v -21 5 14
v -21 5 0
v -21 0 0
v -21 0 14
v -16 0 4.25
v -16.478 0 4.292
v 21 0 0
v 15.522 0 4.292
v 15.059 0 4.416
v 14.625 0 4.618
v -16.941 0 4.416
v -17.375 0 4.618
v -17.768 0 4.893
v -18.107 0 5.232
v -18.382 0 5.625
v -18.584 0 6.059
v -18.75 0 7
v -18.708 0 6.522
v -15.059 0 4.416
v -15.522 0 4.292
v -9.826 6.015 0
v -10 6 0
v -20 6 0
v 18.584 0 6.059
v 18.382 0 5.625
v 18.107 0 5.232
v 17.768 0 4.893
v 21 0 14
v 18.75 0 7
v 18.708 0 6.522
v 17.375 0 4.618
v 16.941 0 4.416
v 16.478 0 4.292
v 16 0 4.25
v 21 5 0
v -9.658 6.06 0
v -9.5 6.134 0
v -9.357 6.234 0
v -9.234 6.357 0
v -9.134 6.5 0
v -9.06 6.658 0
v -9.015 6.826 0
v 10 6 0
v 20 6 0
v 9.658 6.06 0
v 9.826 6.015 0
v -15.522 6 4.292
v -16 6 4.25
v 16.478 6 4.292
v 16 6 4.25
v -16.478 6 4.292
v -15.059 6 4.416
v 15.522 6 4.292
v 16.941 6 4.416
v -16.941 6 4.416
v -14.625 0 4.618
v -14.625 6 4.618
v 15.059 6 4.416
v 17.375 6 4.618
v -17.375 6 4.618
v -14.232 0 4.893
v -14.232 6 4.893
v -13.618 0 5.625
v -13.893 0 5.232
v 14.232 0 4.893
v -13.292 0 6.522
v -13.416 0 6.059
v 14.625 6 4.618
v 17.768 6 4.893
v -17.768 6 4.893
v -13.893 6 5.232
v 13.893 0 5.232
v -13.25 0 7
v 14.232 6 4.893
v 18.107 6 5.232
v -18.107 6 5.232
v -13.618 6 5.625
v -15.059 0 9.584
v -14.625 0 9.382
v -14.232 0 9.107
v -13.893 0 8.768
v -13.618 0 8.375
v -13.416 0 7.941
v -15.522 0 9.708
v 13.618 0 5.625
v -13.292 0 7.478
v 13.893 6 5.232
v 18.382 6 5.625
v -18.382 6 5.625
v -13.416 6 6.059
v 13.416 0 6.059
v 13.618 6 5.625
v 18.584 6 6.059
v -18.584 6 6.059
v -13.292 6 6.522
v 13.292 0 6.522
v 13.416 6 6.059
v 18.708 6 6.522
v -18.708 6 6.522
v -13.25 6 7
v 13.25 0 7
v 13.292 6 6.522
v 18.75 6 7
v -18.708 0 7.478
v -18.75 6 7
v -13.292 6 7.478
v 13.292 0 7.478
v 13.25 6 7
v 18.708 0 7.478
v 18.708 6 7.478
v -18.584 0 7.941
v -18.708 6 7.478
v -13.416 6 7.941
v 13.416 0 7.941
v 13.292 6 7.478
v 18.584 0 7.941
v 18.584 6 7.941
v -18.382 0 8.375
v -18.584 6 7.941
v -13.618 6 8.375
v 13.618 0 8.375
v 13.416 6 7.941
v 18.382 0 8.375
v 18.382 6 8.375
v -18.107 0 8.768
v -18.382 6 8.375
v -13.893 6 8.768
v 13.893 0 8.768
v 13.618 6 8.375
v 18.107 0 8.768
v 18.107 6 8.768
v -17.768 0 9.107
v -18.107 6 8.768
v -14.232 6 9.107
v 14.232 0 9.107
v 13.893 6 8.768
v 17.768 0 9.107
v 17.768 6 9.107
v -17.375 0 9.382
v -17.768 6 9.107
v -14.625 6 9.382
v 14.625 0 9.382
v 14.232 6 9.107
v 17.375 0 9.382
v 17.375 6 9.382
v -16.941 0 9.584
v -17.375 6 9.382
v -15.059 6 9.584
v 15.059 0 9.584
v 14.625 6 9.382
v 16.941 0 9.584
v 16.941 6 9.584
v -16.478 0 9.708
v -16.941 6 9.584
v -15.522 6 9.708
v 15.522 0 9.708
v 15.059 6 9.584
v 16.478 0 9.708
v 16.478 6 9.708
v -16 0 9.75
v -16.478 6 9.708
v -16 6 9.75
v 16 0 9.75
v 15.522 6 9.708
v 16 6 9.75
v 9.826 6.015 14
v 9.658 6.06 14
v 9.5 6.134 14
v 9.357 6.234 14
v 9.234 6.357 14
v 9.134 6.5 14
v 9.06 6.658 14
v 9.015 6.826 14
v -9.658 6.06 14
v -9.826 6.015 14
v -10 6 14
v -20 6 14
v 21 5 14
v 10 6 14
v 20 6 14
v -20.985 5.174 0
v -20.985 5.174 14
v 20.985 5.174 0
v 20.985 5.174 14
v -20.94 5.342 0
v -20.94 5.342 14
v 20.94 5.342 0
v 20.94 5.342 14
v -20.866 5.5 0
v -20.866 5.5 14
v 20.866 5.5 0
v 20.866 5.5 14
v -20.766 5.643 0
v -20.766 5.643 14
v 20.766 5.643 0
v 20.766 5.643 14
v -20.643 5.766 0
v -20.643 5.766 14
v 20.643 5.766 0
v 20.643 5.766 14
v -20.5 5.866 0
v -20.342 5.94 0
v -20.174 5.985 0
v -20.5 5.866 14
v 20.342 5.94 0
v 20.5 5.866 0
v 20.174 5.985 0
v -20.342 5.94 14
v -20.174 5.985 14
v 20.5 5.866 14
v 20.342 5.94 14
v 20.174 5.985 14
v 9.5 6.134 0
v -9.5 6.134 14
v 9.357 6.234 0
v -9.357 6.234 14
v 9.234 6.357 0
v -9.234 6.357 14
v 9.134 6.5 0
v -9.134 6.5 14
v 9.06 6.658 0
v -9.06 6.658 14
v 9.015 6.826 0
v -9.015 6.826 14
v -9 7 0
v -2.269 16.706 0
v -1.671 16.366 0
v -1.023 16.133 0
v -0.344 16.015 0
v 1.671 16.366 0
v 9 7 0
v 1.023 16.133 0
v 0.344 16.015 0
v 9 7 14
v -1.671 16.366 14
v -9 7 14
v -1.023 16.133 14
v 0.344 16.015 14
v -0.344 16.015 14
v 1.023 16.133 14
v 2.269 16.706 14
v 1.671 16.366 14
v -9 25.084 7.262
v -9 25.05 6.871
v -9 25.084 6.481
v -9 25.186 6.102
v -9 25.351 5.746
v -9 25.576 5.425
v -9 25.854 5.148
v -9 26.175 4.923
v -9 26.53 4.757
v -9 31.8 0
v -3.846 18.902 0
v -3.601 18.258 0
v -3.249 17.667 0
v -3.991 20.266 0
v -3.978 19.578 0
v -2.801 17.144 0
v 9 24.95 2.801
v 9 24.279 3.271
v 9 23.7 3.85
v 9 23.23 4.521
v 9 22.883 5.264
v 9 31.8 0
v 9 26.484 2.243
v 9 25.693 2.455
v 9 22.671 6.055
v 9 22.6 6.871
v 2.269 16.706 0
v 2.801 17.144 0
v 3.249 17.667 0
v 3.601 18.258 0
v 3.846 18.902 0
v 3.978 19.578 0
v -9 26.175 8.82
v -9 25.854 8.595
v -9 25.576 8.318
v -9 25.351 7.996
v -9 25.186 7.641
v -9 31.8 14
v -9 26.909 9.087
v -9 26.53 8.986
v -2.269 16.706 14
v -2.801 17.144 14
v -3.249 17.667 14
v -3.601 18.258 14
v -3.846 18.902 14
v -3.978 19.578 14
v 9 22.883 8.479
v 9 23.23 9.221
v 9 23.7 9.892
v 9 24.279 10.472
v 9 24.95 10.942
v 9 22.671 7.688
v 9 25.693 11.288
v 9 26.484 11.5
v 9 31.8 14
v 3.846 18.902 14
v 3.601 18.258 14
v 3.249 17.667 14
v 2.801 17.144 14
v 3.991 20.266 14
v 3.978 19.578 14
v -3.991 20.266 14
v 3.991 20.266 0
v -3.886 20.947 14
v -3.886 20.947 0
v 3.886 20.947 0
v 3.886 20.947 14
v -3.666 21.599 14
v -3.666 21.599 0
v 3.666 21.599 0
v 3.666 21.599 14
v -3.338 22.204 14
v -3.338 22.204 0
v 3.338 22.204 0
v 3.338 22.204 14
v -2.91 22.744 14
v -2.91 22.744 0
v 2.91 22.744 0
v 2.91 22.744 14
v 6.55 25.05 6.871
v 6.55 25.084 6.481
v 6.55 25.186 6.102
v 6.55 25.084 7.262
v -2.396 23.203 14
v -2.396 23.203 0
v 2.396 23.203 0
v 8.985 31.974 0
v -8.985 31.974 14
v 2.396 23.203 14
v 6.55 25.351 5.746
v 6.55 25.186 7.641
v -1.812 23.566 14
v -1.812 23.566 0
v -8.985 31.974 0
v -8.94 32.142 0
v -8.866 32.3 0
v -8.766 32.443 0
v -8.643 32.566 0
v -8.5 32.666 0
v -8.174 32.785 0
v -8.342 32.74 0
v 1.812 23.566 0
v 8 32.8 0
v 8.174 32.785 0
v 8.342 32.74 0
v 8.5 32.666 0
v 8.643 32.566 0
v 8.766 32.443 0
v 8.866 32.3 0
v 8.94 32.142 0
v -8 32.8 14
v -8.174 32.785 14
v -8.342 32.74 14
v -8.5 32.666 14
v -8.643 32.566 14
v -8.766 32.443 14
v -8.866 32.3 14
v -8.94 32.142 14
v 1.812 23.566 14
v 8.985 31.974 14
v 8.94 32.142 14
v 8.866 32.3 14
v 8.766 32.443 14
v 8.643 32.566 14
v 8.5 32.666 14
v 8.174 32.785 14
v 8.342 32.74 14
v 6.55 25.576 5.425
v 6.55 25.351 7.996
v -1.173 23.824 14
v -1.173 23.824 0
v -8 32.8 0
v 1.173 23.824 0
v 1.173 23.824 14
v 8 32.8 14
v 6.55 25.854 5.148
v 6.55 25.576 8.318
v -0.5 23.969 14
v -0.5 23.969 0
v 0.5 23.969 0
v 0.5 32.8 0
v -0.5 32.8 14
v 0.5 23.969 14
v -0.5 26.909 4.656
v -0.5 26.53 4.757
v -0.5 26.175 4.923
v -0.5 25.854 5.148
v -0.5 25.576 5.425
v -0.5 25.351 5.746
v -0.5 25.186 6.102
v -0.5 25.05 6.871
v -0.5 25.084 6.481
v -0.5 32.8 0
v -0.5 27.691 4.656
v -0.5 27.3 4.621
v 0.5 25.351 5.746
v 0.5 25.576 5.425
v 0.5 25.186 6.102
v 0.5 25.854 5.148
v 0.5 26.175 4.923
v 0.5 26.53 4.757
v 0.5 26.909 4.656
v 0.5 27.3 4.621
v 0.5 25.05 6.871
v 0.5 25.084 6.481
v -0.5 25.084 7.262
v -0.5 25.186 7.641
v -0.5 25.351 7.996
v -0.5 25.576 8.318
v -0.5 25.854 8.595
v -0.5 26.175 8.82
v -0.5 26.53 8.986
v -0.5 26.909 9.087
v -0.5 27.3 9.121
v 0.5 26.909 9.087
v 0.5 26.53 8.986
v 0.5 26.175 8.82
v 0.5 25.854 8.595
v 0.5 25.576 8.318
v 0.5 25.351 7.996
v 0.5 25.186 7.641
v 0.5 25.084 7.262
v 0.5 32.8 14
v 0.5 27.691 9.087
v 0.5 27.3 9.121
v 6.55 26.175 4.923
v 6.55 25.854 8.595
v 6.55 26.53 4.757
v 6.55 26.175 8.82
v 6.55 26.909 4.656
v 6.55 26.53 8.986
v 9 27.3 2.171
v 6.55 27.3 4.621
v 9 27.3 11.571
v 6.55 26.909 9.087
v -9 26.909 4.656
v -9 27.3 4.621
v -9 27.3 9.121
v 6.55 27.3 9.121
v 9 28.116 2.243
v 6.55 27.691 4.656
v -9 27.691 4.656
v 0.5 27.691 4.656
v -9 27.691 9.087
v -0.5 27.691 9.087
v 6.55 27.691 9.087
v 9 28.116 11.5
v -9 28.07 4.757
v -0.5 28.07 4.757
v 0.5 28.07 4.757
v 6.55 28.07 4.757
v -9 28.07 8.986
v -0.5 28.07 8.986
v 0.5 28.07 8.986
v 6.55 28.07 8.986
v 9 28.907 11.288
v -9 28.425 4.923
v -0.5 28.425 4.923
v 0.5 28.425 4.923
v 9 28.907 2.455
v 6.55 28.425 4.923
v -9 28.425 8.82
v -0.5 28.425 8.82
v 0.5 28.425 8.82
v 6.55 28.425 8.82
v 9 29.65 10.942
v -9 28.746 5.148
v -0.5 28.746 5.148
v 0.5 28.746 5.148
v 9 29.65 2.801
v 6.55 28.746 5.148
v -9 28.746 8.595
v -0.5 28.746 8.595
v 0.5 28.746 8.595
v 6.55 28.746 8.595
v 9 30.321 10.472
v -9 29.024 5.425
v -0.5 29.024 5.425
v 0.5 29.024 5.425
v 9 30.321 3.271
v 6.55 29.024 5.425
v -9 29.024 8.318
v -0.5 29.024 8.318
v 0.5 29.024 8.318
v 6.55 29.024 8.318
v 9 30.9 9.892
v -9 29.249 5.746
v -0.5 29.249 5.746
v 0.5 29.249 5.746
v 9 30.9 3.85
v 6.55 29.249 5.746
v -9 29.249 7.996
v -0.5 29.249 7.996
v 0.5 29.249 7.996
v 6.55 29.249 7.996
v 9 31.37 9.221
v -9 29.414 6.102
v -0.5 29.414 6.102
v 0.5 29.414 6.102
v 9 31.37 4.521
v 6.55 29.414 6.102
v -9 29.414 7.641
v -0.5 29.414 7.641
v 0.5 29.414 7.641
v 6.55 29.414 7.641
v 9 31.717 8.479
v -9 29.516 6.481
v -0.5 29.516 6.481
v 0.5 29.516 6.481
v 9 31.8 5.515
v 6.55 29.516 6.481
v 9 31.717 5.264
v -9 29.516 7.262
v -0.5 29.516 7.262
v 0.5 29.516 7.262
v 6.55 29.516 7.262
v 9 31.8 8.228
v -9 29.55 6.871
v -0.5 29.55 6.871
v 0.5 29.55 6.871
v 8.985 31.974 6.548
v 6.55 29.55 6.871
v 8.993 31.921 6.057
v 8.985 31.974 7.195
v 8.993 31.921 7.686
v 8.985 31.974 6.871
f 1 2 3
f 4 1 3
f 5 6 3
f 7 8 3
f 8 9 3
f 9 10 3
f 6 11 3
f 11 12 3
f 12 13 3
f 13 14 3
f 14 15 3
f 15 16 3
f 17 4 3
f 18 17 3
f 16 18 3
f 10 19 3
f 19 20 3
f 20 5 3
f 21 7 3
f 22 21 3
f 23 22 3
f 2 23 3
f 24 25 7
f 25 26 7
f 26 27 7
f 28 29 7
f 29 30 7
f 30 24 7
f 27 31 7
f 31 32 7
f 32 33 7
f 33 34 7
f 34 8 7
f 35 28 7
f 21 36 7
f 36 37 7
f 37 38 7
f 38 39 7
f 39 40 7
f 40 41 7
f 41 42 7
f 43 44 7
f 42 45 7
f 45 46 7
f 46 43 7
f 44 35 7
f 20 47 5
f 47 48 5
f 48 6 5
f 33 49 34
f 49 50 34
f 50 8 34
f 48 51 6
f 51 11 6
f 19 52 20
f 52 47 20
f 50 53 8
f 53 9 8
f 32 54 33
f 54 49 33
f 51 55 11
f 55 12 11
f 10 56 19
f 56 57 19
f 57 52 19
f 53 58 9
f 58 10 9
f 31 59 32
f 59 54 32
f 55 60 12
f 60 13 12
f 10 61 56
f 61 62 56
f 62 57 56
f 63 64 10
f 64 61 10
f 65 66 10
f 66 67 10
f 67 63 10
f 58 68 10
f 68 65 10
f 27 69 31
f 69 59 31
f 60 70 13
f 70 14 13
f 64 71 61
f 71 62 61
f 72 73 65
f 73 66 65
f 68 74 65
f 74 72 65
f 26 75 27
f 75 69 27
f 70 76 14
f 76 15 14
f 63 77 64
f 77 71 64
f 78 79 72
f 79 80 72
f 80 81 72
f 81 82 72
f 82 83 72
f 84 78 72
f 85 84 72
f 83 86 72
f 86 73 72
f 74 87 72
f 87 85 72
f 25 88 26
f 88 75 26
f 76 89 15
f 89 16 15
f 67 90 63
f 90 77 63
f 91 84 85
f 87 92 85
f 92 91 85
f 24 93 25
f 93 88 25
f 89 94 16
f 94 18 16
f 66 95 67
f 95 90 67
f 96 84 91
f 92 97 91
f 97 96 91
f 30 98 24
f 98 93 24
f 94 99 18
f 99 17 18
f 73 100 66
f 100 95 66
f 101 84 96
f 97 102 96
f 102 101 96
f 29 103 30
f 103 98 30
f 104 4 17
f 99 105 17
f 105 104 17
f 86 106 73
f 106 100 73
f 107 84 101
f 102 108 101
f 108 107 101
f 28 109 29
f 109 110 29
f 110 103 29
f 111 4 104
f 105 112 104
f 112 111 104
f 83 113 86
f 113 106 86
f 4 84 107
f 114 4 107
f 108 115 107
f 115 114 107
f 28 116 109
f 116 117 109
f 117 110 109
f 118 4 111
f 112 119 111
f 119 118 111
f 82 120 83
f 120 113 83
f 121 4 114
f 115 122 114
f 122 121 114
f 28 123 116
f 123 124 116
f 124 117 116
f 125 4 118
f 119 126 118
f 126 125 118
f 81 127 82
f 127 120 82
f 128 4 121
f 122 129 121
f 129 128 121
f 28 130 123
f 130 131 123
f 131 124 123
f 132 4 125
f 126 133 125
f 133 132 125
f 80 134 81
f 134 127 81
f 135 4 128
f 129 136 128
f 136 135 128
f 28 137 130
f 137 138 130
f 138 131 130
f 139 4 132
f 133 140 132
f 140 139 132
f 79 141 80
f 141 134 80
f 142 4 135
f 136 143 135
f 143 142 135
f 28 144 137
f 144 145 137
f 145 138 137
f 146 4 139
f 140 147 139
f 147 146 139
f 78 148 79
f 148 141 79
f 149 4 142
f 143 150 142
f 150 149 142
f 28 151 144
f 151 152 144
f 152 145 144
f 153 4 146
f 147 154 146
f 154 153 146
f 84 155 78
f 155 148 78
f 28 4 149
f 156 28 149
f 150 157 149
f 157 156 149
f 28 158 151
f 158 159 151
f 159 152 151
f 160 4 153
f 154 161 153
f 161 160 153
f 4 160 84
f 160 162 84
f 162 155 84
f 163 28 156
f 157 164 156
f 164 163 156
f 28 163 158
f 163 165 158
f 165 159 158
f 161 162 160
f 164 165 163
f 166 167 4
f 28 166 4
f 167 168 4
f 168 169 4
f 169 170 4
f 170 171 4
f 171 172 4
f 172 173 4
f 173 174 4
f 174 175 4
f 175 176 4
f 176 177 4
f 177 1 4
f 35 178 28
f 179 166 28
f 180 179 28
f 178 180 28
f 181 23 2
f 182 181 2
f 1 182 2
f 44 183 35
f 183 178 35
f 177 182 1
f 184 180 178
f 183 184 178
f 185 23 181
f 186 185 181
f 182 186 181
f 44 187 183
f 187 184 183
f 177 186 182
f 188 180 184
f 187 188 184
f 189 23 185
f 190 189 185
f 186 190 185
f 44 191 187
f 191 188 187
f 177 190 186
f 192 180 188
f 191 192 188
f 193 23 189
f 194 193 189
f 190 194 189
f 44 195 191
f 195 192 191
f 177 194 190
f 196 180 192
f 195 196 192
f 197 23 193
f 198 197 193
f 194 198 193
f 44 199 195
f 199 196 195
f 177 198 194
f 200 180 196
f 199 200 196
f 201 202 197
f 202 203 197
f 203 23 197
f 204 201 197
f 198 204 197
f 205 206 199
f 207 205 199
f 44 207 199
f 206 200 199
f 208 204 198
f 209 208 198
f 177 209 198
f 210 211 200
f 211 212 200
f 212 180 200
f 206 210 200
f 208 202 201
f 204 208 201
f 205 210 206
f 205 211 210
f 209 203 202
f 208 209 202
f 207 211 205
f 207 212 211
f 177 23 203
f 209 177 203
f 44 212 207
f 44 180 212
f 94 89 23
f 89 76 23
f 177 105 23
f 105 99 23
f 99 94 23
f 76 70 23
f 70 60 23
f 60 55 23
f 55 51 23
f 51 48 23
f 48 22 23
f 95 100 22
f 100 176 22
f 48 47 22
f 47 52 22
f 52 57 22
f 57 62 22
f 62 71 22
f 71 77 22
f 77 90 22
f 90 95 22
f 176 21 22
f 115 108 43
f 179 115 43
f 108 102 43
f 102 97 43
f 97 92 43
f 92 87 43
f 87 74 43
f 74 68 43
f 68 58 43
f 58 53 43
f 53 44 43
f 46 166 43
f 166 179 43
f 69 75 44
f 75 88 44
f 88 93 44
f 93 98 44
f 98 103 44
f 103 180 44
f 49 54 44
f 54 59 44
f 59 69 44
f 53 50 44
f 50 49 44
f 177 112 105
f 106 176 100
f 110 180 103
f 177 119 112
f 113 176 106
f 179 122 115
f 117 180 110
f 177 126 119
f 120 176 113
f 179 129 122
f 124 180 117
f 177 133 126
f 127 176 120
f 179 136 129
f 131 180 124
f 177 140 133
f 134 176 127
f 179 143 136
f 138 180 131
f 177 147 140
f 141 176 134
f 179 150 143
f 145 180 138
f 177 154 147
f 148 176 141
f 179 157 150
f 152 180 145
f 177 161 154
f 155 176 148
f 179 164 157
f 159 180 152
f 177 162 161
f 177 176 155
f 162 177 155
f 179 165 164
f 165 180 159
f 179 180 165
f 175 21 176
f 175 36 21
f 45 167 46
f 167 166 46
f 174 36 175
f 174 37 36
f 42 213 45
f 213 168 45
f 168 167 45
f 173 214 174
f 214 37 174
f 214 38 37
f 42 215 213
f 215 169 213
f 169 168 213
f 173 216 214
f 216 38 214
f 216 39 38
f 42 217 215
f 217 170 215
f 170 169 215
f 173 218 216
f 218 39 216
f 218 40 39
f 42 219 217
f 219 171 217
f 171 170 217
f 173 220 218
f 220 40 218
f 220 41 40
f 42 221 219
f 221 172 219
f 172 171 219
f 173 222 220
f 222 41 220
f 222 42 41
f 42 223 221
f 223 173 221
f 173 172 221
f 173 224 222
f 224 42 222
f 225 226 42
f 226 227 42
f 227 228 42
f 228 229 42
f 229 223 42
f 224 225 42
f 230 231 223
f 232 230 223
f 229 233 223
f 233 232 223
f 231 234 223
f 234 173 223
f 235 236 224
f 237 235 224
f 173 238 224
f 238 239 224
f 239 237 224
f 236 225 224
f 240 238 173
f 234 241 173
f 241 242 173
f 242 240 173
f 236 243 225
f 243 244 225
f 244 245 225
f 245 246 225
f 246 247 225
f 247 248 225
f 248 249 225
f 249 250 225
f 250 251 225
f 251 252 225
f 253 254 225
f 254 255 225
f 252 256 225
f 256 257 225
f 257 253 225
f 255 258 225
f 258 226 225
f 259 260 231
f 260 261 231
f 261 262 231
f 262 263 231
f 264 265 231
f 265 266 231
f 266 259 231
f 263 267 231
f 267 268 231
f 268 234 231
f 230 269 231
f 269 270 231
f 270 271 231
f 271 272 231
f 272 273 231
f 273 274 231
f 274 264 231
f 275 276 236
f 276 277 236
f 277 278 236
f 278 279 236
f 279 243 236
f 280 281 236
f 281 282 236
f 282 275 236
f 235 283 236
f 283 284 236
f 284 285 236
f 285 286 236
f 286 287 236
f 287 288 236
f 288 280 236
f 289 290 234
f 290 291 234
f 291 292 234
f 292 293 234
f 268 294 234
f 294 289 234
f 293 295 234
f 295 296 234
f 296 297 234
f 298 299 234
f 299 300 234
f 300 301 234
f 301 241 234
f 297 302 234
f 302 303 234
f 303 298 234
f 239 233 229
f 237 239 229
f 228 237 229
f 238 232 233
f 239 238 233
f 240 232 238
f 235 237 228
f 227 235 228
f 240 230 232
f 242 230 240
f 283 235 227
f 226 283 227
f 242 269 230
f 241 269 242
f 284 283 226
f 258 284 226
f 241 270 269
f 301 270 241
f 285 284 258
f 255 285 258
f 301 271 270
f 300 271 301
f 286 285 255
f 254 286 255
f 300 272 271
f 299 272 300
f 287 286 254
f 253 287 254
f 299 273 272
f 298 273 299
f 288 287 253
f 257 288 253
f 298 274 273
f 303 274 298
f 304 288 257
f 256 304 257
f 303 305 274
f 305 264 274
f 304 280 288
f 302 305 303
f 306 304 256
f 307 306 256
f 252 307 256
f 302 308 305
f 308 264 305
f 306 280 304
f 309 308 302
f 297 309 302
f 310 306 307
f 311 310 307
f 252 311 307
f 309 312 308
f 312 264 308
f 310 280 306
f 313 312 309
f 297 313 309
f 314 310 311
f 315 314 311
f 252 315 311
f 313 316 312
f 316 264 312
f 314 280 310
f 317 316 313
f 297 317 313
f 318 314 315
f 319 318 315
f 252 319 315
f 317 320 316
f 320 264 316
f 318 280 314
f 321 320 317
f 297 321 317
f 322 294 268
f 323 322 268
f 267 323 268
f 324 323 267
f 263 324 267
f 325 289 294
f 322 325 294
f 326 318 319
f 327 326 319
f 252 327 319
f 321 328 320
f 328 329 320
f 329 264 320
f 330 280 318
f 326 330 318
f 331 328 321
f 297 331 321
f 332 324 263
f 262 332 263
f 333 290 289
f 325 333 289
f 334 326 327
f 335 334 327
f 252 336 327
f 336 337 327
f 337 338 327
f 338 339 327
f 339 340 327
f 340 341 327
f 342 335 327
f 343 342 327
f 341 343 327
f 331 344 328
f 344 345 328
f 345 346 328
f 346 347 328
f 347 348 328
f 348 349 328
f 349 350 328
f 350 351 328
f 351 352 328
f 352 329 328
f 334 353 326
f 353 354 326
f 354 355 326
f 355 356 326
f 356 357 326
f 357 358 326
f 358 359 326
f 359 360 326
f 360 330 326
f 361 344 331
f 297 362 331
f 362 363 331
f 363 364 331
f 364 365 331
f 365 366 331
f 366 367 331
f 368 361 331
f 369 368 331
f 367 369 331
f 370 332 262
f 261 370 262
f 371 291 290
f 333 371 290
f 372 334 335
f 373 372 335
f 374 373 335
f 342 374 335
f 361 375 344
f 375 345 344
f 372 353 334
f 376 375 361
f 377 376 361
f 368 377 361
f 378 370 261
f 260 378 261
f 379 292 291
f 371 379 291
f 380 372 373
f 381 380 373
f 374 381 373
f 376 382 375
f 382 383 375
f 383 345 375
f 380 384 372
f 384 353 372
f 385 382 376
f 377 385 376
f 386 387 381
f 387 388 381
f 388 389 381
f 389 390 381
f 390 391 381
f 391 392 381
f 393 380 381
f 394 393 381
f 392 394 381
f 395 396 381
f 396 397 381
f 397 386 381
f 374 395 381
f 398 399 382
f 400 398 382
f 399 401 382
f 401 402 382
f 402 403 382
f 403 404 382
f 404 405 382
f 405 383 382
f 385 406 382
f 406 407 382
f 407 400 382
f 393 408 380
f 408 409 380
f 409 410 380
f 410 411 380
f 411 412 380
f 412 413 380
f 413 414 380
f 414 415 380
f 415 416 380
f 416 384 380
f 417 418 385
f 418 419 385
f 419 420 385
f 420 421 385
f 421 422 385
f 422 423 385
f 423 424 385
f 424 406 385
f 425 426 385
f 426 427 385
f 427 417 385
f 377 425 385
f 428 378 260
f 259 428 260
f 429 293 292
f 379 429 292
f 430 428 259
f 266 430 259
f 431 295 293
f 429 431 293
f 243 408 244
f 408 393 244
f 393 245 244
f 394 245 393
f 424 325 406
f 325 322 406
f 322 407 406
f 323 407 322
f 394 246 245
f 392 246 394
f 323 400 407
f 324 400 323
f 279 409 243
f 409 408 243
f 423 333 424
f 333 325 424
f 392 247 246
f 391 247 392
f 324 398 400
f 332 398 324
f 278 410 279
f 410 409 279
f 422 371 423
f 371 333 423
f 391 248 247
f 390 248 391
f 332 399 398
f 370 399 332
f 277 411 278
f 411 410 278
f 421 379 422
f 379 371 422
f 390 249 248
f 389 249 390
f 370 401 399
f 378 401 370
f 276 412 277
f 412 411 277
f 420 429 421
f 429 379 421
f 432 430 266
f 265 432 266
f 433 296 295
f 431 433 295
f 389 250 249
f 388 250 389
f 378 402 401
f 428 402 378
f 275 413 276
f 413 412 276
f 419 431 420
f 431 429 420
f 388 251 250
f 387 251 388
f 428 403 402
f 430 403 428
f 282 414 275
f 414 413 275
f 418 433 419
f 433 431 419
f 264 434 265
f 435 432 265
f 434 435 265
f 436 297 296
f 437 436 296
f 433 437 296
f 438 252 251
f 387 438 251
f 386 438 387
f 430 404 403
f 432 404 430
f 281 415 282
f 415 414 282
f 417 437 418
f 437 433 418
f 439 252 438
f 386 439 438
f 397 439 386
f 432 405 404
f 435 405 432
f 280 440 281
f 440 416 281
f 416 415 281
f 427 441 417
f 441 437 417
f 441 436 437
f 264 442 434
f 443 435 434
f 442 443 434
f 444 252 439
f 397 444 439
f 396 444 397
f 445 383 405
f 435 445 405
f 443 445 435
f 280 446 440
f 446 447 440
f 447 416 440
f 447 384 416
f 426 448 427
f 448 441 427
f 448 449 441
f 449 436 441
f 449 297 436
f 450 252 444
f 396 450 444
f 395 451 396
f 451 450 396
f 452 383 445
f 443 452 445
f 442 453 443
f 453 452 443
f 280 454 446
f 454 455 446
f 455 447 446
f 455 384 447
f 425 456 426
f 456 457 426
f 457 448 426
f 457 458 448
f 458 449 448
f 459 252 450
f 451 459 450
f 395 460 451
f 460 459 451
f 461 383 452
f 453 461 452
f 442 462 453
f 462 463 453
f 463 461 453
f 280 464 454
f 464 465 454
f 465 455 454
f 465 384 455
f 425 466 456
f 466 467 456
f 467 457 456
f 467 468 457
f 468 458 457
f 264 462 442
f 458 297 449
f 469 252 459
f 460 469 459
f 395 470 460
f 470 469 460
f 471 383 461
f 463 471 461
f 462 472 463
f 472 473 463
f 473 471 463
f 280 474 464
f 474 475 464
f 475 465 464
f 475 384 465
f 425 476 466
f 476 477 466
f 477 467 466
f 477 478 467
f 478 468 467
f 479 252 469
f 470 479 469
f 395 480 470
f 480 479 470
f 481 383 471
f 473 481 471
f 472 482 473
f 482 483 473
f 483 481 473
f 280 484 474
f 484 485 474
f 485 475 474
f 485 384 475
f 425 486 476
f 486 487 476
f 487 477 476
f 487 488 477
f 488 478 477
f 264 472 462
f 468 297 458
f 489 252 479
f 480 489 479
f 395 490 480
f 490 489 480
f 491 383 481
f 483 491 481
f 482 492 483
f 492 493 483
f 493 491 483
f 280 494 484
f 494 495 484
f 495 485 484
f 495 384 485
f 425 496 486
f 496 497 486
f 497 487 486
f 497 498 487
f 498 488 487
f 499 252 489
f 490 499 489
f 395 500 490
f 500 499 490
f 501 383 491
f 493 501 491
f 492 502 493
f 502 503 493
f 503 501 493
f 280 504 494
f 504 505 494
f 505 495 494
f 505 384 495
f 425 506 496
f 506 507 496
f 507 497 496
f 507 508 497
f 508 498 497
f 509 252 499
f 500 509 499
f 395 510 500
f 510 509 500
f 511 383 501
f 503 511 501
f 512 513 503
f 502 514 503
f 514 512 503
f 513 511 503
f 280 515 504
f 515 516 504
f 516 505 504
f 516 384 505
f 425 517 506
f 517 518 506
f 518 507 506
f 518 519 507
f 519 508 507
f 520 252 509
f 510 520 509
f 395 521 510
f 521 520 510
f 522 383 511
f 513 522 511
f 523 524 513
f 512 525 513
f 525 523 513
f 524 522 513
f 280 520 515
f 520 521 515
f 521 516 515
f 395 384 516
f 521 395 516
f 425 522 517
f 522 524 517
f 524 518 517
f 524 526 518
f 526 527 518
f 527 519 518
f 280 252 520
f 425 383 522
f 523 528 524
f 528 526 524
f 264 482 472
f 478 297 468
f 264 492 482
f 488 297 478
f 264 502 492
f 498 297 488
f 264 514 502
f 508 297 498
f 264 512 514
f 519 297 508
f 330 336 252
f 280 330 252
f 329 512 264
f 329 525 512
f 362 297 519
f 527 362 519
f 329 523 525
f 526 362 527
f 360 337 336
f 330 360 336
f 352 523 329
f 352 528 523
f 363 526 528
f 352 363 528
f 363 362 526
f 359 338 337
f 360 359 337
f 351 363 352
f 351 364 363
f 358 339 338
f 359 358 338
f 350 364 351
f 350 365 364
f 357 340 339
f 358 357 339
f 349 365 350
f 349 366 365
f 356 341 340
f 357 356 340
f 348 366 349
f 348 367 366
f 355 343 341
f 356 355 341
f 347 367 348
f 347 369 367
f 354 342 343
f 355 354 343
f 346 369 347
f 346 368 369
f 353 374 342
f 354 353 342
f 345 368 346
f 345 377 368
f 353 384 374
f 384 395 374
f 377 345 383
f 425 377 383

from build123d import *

# Parameters (mm, degrees)
BOSS_EXTRUDE1_DEPTH                             = 14
F_5_5_5_5_DIAMETER_HOLE1_D                      = 5.5
CSK_FOR_M4_FLAT_HEAD_MACHINE_SCREW1_D           = 4.5
CSK_FOR_M4_FLAT_HEAD_MACHINE_SCREW1_CSINK_D     = 9.4
CSK_FOR_M4_FLAT_HEAD_MACHINE_SCREW1_CSINK_ANGLE = 90
FILLET1_R                                       = 1


with BuildPart() as part:
    # Sketch1 → Boss-Extrude1 (new body)
    with BuildSketch(Plane.XY):
        with BuildLine():
            Line((-21, 0), (21, 0))
            Line((21, 0), (21, 6))
            Line((21, 6), (9, 6))
            Line((9, 6), (9, 32.8))
            Line((9, 32.8), (0.5, 32.8))
            Line((0.5, 32.8), (0.5, 23.968626967))
            ThreePointArc((0.5, 23.968626967), (0, 16), (-0.5, 23.968626967))
            Line((-0.5, 23.968626967), (-0.5, 32.8))
            Line((-0.5, 32.8), (-9, 32.8))
            Line((-9, 32.8), (-9, 6))
            Line((-9, 6), (-21, 6))
            Line((-21, 6), (-21, 0))
        make_face()
    extrude(amount=BOSS_EXTRUDE1_DEPTH)

    # Ø5.5 (5.5) Diameter Hole1 (through all)
    with Locations(Plane(origin=(-16, 6, 7), x_dir=(0, 0, 1), z_dir=(0, 1, 0))):
        with Locations((0, 0), (0, 32)):
            Hole(F_5_5_5_5_DIAMETER_HOLE1_D / 2)

    # CSK for M4 Flat Head Machine Screw1 (through all)
    with Locations(Plane(origin=(9, 27.3, 6.871372549), x_dir=(0, 1, 0), z_dir=(1, 0, 0))):
        with Locations((0, 0)):
            CounterSinkHole(CSK_FOR_M4_FLAT_HEAD_MACHINE_SCREW1_D / 2, CSK_FOR_M4_FLAT_HEAD_MACHINE_SCREW1_CSINK_D / 2, counter_sink_angle=CSK_FOR_M4_FLAT_HEAD_MACHINE_SCREW1_CSINK_ANGLE)

    # Fillet1
    # the kernel refuses this fillet: 1 mm, written as the material it adds along each edge
    with BuildSketch(Plane(origin=(-9, 6, 0), x_dir=(0, 1, 0), z_dir=(0, 0, 1)), Plane(origin=(9, 6, 0), x_dir=(1, 0, 0), z_dir=(0, 0, 1))) as fillet1_piece_1:
        with BuildLine():
            CenterArc((FILLET1_R, FILLET1_R), FILLET1_R, 180, 90)
            Line((0, FILLET1_R), (0, 0))
            Line((0, 0), (FILLET1_R, 0))
        make_face()
    extrude(amount=14)
    # the kernel refuses this fillet: 1 mm, written as the material it takes off along each edge
    with BuildSketch(Plane(origin=(-21, 6, -2.5), x_dir=(0, -1, 0), z_dir=(0, 0, 1))) as fillet1_2_piece_1:
        with BuildLine():
            CenterArc((FILLET1_R, FILLET1_R), FILLET1_R, 180, 90)
            Line((0, FILLET1_R), (0, 0))
            Line((0, 0), (FILLET1_R, 0))
        make_face()
    extrude(amount=19, mode=Mode.SUBTRACT)
    with BuildSketch(Plane(origin=(-9, 32.8, -2.5), x_dir=(1, 0, 0), z_dir=(0, 0, 1)), Plane(origin=(9, 32.8, -2.5), x_dir=(0, -1, 0), z_dir=(0, 0, 1)), Plane(origin=(21, 6, -2.5), x_dir=(0, -1, 0), z_dir=(0, 0, 1))) as fillet1_2_piece_2:
        with BuildLine():
            CenterArc((FILLET1_R, -FILLET1_R), FILLET1_R, 90, 90)
            Line((0, -FILLET1_R), (0, 0))
            Line((0, 0), (FILLET1_R, 0))
        make_face()
    extrude(amount=19, mode=Mode.SUBTRACT)


solid = part.part
